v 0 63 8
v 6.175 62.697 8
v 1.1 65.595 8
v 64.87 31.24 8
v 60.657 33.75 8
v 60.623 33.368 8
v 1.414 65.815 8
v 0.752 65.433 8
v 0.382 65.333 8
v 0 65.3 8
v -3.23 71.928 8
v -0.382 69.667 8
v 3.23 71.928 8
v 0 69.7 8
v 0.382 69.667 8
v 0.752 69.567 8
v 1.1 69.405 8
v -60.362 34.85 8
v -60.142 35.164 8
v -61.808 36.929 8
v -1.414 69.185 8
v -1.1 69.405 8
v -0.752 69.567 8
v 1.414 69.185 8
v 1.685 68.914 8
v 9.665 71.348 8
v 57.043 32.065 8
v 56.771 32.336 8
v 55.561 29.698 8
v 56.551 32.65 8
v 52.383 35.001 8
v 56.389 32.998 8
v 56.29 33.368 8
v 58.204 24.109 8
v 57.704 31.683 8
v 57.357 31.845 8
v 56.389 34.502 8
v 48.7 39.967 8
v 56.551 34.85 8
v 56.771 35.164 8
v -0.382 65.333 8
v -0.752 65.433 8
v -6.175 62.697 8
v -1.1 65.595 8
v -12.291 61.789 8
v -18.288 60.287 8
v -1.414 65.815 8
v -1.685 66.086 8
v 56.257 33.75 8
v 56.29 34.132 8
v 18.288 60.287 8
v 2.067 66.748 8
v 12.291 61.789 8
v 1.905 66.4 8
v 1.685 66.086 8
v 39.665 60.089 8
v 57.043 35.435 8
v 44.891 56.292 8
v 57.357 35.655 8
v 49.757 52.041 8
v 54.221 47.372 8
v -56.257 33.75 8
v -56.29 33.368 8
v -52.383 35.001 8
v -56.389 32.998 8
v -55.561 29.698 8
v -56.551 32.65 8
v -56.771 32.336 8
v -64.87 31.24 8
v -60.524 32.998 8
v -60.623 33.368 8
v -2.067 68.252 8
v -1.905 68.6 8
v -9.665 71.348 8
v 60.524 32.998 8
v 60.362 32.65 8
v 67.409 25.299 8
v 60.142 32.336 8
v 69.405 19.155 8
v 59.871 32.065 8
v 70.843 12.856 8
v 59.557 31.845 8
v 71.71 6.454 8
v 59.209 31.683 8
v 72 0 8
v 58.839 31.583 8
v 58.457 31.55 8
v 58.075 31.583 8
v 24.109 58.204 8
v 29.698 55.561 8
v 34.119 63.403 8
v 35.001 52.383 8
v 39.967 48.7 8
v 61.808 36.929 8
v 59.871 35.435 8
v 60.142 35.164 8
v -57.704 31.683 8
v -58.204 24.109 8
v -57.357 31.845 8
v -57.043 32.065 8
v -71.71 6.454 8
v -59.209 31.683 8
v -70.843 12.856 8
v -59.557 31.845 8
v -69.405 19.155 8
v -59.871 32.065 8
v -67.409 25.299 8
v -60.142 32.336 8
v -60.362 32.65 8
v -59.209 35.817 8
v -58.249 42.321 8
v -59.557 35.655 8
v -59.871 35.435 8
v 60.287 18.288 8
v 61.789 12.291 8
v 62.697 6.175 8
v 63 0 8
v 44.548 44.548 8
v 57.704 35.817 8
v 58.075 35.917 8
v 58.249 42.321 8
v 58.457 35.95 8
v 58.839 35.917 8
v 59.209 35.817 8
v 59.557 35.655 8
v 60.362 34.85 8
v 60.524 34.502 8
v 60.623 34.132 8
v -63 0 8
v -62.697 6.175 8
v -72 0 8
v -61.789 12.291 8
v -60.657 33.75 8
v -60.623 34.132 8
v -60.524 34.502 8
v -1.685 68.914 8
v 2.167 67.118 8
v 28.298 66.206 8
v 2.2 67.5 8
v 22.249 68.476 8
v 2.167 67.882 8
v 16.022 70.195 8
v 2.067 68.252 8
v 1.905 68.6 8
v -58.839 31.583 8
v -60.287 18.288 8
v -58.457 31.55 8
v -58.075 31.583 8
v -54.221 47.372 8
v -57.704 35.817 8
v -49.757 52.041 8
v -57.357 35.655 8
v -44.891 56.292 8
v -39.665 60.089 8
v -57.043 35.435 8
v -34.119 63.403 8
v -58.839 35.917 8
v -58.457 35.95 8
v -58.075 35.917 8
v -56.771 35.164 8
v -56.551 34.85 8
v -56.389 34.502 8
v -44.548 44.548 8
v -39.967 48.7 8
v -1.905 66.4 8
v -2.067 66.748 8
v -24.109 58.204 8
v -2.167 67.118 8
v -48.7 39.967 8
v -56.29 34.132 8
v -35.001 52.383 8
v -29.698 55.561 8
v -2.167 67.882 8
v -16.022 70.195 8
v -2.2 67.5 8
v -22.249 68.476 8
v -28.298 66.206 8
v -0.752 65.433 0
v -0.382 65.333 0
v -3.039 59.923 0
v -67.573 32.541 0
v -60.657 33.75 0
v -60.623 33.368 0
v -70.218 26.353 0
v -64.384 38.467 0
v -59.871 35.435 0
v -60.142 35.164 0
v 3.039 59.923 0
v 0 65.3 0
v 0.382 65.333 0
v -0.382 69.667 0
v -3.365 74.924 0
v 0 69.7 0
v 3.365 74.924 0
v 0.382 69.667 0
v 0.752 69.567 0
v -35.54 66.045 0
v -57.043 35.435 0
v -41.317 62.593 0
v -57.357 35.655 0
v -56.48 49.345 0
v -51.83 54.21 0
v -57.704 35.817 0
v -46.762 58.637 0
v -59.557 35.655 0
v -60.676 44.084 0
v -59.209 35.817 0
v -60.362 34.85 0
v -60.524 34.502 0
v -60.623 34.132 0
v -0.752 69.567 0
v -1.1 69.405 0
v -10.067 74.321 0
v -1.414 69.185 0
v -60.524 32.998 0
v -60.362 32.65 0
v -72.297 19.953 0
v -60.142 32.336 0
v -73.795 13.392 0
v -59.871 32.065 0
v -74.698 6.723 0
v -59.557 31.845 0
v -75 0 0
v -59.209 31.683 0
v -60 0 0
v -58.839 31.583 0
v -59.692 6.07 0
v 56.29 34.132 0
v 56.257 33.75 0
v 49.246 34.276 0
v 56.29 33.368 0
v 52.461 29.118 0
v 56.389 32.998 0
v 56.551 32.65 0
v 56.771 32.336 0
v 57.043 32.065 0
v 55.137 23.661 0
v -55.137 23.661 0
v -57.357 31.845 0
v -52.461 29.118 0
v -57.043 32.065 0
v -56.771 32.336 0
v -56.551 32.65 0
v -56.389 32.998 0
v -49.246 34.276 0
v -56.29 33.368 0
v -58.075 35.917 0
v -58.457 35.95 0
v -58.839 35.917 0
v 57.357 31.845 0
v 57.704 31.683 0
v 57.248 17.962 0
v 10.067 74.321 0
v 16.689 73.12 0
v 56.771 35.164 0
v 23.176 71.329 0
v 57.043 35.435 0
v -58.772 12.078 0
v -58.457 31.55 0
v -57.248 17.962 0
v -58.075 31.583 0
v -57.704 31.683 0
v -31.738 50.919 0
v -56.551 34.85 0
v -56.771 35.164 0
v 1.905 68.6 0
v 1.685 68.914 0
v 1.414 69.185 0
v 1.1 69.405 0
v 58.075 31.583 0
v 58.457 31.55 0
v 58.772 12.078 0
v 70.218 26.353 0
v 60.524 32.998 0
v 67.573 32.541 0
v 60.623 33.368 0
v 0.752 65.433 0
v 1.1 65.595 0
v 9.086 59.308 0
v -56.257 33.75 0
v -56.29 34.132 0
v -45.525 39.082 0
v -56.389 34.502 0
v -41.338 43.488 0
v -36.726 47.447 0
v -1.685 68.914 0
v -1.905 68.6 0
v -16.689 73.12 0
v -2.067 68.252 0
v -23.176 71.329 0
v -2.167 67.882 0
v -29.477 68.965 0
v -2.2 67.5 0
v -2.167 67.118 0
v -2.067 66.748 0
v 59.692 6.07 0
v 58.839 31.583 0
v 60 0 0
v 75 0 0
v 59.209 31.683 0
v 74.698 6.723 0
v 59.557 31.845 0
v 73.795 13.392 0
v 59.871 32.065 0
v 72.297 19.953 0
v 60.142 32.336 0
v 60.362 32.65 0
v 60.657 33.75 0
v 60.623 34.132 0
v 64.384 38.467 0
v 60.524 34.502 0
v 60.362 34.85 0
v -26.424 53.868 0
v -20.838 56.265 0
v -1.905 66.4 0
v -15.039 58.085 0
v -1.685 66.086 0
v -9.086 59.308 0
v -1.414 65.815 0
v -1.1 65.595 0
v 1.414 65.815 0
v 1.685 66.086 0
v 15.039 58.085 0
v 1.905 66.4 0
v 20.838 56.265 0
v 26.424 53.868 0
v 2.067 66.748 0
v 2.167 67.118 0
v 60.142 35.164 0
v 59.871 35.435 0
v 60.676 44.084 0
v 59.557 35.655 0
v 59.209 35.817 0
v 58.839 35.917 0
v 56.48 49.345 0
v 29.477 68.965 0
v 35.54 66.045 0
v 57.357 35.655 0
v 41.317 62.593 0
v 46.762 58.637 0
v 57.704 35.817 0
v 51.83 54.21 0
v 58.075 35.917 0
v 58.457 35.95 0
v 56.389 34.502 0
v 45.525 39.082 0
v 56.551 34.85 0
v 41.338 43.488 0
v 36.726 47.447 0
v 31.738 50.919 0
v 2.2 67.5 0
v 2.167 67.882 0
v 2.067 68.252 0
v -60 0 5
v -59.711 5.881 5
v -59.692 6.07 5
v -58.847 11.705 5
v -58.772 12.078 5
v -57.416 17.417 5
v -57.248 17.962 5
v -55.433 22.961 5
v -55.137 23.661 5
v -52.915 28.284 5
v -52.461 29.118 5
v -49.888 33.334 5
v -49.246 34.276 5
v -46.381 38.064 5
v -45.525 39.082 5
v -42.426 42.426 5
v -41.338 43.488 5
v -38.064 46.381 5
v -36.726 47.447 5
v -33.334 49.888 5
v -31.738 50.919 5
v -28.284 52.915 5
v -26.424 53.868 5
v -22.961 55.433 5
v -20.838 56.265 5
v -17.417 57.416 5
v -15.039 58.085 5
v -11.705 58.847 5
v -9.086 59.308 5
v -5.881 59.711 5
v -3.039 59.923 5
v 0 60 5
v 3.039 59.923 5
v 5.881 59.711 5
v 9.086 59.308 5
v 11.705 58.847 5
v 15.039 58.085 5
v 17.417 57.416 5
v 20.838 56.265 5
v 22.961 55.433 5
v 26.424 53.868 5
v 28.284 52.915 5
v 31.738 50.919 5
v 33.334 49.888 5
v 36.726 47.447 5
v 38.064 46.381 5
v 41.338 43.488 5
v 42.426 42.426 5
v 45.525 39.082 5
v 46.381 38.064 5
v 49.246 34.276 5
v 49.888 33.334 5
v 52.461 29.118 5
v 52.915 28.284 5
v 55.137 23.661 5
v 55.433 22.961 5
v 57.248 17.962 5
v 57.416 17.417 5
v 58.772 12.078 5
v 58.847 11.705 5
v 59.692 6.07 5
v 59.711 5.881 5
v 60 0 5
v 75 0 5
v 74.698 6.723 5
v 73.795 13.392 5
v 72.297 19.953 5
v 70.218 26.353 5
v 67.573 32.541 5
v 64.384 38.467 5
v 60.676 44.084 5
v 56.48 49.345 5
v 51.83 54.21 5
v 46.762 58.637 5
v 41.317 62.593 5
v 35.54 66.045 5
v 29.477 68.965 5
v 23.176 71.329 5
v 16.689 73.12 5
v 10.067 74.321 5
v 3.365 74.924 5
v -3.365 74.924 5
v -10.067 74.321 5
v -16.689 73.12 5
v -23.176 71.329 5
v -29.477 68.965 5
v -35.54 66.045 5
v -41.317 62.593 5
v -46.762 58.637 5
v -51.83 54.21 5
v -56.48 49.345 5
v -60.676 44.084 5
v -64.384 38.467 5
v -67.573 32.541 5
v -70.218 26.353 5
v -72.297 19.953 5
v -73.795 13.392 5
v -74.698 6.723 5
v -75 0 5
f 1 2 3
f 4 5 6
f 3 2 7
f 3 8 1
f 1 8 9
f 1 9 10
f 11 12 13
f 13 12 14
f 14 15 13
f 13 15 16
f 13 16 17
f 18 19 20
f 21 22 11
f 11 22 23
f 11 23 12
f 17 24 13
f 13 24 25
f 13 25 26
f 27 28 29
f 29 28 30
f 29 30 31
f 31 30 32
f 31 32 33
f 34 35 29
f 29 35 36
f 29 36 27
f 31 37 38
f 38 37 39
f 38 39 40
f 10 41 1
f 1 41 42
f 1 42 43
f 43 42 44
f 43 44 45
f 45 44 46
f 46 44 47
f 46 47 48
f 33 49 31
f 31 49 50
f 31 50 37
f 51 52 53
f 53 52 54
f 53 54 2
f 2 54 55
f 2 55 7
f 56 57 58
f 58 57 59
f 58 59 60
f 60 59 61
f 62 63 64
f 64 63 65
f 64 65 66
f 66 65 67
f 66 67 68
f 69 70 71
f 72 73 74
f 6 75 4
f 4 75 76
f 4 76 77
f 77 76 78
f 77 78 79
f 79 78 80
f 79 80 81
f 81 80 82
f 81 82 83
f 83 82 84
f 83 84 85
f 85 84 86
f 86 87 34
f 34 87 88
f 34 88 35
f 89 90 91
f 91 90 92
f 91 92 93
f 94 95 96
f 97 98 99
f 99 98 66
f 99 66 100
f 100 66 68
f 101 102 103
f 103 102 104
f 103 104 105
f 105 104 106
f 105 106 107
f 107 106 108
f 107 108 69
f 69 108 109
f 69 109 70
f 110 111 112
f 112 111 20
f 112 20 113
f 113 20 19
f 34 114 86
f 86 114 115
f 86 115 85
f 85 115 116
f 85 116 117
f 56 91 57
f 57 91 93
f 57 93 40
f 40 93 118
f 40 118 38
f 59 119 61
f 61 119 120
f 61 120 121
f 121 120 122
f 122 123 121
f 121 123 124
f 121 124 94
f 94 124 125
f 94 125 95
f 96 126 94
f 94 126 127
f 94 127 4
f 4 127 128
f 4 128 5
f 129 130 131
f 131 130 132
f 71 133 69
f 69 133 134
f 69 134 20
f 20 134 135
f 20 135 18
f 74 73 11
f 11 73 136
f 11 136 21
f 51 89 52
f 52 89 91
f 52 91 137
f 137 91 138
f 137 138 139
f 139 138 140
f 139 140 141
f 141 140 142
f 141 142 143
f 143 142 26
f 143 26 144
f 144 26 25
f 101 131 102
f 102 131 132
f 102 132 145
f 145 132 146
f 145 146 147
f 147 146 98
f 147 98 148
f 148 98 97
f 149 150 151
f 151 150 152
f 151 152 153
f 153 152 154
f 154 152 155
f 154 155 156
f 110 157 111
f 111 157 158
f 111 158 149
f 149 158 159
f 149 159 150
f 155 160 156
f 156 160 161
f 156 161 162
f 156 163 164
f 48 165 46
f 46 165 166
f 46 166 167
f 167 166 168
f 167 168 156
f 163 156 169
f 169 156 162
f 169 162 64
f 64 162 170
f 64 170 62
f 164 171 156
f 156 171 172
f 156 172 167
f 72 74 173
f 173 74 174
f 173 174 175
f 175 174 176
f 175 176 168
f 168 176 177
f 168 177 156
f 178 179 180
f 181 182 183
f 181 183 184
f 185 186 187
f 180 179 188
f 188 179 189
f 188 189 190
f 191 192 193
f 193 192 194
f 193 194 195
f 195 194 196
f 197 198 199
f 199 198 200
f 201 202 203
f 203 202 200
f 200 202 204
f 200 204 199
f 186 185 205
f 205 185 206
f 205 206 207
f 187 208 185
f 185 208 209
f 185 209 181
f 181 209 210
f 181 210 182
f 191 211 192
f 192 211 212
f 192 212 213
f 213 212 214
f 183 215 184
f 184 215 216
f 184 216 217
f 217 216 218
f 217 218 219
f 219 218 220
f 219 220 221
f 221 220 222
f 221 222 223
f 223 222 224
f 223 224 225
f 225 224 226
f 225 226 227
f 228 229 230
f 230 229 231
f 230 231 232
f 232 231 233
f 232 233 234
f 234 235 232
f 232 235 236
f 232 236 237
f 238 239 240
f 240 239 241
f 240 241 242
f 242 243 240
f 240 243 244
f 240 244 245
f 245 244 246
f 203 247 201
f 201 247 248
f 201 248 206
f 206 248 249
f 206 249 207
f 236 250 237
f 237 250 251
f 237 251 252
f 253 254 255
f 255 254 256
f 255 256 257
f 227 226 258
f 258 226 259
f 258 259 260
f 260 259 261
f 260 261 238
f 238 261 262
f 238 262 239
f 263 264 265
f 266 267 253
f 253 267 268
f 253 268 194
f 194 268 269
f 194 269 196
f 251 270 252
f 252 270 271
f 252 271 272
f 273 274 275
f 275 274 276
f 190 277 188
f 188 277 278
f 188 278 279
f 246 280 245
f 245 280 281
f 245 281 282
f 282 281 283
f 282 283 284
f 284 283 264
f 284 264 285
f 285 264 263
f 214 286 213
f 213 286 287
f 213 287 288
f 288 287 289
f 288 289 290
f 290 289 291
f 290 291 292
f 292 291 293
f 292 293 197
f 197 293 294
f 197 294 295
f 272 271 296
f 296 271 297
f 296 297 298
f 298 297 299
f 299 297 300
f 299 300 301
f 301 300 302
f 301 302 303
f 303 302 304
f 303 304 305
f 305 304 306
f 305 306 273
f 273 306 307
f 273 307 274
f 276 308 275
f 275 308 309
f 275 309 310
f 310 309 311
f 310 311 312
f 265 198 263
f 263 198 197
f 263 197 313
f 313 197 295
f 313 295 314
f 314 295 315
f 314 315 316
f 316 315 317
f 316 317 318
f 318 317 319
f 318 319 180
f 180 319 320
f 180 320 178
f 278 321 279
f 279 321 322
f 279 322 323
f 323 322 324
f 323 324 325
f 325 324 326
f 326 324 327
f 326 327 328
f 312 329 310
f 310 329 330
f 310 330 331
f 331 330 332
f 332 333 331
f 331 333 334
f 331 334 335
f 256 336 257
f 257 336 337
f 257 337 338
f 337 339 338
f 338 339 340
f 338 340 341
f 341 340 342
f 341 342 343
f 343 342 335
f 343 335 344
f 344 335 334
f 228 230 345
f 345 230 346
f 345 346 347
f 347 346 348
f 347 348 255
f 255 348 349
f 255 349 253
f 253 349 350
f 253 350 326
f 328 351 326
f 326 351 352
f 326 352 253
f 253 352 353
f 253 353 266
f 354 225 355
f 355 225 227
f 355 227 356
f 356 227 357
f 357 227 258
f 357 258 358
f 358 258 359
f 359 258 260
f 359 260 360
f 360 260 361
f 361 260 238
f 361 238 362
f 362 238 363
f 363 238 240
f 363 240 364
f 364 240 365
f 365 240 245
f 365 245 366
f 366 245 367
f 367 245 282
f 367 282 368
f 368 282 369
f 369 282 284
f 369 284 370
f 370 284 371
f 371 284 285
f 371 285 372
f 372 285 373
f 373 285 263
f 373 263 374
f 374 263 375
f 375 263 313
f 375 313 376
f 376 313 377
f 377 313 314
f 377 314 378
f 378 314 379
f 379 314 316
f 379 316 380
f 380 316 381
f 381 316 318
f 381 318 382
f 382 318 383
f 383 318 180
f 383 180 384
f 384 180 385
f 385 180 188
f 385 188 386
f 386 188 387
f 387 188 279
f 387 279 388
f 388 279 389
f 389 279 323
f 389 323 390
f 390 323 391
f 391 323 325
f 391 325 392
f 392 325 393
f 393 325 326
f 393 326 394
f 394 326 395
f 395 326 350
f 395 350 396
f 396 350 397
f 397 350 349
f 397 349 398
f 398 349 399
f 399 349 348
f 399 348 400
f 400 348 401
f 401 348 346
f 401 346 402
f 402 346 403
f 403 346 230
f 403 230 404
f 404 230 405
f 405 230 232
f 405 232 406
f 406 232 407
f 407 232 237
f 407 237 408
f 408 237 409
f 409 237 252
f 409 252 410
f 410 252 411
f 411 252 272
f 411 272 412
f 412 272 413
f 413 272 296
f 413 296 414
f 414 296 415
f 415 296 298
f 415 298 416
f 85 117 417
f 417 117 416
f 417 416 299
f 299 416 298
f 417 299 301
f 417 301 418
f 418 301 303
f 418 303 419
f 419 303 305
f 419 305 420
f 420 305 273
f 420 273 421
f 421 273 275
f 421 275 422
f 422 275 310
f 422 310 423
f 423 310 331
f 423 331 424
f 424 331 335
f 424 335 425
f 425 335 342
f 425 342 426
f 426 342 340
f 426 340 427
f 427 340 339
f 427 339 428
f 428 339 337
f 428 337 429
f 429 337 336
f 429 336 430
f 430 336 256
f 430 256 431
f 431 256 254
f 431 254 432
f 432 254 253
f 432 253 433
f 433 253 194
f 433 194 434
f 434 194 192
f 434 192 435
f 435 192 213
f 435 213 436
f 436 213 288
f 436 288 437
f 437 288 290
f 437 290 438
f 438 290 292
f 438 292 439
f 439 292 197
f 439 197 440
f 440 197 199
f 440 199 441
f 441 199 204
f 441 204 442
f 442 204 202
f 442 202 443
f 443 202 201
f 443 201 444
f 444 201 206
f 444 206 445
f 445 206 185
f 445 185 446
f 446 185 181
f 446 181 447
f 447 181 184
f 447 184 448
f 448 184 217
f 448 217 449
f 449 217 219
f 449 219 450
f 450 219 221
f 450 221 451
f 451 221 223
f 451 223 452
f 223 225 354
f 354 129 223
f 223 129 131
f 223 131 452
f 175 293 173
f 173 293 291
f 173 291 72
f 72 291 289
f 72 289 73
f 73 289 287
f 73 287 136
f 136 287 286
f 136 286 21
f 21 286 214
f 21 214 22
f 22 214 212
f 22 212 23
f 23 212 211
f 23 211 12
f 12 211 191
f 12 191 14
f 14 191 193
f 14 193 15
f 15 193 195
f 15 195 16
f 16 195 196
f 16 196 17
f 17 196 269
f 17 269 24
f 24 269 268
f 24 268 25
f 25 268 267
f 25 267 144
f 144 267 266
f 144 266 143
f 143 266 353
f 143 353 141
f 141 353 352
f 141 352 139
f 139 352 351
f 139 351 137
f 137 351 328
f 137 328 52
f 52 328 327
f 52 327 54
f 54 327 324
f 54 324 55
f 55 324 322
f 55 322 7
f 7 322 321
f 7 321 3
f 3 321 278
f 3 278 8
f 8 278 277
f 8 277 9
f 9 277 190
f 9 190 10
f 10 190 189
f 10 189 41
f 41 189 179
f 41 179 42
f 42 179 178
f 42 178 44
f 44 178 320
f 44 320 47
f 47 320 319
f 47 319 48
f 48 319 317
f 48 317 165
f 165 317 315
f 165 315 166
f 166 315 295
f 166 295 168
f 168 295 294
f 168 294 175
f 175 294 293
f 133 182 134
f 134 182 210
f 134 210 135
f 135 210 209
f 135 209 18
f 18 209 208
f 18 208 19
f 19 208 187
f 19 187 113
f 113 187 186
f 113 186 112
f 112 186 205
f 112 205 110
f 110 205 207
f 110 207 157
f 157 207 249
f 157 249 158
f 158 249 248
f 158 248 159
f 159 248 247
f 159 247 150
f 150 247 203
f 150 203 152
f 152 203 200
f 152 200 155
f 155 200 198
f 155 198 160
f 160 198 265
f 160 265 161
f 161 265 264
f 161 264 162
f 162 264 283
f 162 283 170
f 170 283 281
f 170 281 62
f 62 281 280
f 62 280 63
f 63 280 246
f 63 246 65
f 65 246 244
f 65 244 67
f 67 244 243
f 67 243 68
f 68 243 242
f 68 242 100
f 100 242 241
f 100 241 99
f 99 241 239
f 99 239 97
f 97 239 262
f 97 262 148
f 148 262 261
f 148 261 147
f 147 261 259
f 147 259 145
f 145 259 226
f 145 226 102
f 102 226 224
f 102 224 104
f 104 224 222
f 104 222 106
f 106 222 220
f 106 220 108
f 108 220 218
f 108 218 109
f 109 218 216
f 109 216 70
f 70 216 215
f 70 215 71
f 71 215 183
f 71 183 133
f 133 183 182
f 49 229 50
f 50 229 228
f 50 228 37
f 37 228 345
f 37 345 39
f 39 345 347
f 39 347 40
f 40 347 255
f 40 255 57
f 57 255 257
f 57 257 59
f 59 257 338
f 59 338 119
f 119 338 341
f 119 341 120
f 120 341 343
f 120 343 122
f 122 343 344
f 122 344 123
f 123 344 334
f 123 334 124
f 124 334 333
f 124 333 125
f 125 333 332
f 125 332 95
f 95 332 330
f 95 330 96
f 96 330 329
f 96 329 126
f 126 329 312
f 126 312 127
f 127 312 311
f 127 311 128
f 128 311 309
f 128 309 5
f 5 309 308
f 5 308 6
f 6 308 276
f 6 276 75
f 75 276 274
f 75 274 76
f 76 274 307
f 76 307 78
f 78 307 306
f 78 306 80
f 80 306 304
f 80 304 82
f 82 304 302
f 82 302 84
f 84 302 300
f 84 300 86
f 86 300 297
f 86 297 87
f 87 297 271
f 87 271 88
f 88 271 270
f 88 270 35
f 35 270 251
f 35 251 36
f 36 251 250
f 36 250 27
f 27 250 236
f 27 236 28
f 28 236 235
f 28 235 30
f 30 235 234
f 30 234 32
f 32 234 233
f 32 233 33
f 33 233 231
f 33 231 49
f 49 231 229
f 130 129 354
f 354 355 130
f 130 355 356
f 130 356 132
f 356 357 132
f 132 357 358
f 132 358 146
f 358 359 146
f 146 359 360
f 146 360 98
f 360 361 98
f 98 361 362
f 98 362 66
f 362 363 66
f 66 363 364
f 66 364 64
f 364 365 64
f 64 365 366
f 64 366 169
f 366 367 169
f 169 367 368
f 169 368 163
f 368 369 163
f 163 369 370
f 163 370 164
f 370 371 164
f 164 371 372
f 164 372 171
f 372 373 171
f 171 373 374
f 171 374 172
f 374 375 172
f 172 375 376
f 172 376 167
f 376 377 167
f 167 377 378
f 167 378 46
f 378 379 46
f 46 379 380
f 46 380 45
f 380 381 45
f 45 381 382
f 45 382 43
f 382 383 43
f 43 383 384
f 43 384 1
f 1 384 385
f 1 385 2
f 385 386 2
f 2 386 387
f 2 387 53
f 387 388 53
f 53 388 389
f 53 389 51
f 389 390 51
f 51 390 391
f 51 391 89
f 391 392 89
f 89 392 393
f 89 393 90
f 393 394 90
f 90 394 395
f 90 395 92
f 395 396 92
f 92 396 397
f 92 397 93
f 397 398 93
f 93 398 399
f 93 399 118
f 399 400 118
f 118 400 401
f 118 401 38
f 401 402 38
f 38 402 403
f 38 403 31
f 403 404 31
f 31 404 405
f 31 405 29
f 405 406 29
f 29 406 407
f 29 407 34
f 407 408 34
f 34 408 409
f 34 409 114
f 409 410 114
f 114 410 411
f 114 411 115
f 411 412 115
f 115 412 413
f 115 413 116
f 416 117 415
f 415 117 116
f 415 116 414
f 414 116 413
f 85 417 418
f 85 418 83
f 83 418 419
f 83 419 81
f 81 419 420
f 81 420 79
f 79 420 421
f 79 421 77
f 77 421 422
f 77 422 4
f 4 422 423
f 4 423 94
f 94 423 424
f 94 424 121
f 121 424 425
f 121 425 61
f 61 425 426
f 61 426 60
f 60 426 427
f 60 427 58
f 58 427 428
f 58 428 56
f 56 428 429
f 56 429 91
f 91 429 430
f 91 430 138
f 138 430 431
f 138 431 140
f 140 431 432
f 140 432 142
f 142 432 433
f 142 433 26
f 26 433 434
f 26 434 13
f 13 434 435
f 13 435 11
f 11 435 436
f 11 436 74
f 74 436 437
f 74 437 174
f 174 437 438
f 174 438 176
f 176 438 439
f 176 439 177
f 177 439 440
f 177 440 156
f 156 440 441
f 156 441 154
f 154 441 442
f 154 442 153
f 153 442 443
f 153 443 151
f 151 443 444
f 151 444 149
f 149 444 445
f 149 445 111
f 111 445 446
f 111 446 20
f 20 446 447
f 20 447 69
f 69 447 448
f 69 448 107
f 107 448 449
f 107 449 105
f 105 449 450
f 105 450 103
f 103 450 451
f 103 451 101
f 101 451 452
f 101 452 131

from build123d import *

# Parameters (mm, degrees)
CROQUIS1_R              = 2.2
SALIENTE_EXTRUIR1_DEPTH = 8
CHAFL_N1_SIZE           = 3


with BuildPart() as part:
    # Croquis1 → Saliente-Extruir1 (new body)
    with BuildSketch(Plane.XY):
        with BuildLine():
            Line((-75, 0), (-60, 0))
            ThreePointArc((-60, 0), (0, 60), (60, 0))
            Line((60, 0), (75, 0))
            ThreePointArc((75, 0), (0, 75), (-75, 0))
        make_face()
        with Locations((0, 67.5)):
            Circle(CROQUIS1_R, mode=Mode.SUBTRACT)
        with Locations((-58.456714755, 33.75)):
            Circle(CROQUIS1_R, mode=Mode.SUBTRACT)
        with Locations((58.456714755, 33.75)):
            Circle(CROQUIS1_R, mode=Mode.SUBTRACT)
    extrude(amount=SALIENTE_EXTRUIR1_DEPTH)

    # Chaflán1
    chafl_n1_edges = [part.edges().sort_by_distance(p)[0] for p in [
        (0, 75, 8),
        (0, 60, 8),
    ]]
    chamfer(chafl_n1_edges, length=CHAFL_N1_SIZE)


solid = part.part
